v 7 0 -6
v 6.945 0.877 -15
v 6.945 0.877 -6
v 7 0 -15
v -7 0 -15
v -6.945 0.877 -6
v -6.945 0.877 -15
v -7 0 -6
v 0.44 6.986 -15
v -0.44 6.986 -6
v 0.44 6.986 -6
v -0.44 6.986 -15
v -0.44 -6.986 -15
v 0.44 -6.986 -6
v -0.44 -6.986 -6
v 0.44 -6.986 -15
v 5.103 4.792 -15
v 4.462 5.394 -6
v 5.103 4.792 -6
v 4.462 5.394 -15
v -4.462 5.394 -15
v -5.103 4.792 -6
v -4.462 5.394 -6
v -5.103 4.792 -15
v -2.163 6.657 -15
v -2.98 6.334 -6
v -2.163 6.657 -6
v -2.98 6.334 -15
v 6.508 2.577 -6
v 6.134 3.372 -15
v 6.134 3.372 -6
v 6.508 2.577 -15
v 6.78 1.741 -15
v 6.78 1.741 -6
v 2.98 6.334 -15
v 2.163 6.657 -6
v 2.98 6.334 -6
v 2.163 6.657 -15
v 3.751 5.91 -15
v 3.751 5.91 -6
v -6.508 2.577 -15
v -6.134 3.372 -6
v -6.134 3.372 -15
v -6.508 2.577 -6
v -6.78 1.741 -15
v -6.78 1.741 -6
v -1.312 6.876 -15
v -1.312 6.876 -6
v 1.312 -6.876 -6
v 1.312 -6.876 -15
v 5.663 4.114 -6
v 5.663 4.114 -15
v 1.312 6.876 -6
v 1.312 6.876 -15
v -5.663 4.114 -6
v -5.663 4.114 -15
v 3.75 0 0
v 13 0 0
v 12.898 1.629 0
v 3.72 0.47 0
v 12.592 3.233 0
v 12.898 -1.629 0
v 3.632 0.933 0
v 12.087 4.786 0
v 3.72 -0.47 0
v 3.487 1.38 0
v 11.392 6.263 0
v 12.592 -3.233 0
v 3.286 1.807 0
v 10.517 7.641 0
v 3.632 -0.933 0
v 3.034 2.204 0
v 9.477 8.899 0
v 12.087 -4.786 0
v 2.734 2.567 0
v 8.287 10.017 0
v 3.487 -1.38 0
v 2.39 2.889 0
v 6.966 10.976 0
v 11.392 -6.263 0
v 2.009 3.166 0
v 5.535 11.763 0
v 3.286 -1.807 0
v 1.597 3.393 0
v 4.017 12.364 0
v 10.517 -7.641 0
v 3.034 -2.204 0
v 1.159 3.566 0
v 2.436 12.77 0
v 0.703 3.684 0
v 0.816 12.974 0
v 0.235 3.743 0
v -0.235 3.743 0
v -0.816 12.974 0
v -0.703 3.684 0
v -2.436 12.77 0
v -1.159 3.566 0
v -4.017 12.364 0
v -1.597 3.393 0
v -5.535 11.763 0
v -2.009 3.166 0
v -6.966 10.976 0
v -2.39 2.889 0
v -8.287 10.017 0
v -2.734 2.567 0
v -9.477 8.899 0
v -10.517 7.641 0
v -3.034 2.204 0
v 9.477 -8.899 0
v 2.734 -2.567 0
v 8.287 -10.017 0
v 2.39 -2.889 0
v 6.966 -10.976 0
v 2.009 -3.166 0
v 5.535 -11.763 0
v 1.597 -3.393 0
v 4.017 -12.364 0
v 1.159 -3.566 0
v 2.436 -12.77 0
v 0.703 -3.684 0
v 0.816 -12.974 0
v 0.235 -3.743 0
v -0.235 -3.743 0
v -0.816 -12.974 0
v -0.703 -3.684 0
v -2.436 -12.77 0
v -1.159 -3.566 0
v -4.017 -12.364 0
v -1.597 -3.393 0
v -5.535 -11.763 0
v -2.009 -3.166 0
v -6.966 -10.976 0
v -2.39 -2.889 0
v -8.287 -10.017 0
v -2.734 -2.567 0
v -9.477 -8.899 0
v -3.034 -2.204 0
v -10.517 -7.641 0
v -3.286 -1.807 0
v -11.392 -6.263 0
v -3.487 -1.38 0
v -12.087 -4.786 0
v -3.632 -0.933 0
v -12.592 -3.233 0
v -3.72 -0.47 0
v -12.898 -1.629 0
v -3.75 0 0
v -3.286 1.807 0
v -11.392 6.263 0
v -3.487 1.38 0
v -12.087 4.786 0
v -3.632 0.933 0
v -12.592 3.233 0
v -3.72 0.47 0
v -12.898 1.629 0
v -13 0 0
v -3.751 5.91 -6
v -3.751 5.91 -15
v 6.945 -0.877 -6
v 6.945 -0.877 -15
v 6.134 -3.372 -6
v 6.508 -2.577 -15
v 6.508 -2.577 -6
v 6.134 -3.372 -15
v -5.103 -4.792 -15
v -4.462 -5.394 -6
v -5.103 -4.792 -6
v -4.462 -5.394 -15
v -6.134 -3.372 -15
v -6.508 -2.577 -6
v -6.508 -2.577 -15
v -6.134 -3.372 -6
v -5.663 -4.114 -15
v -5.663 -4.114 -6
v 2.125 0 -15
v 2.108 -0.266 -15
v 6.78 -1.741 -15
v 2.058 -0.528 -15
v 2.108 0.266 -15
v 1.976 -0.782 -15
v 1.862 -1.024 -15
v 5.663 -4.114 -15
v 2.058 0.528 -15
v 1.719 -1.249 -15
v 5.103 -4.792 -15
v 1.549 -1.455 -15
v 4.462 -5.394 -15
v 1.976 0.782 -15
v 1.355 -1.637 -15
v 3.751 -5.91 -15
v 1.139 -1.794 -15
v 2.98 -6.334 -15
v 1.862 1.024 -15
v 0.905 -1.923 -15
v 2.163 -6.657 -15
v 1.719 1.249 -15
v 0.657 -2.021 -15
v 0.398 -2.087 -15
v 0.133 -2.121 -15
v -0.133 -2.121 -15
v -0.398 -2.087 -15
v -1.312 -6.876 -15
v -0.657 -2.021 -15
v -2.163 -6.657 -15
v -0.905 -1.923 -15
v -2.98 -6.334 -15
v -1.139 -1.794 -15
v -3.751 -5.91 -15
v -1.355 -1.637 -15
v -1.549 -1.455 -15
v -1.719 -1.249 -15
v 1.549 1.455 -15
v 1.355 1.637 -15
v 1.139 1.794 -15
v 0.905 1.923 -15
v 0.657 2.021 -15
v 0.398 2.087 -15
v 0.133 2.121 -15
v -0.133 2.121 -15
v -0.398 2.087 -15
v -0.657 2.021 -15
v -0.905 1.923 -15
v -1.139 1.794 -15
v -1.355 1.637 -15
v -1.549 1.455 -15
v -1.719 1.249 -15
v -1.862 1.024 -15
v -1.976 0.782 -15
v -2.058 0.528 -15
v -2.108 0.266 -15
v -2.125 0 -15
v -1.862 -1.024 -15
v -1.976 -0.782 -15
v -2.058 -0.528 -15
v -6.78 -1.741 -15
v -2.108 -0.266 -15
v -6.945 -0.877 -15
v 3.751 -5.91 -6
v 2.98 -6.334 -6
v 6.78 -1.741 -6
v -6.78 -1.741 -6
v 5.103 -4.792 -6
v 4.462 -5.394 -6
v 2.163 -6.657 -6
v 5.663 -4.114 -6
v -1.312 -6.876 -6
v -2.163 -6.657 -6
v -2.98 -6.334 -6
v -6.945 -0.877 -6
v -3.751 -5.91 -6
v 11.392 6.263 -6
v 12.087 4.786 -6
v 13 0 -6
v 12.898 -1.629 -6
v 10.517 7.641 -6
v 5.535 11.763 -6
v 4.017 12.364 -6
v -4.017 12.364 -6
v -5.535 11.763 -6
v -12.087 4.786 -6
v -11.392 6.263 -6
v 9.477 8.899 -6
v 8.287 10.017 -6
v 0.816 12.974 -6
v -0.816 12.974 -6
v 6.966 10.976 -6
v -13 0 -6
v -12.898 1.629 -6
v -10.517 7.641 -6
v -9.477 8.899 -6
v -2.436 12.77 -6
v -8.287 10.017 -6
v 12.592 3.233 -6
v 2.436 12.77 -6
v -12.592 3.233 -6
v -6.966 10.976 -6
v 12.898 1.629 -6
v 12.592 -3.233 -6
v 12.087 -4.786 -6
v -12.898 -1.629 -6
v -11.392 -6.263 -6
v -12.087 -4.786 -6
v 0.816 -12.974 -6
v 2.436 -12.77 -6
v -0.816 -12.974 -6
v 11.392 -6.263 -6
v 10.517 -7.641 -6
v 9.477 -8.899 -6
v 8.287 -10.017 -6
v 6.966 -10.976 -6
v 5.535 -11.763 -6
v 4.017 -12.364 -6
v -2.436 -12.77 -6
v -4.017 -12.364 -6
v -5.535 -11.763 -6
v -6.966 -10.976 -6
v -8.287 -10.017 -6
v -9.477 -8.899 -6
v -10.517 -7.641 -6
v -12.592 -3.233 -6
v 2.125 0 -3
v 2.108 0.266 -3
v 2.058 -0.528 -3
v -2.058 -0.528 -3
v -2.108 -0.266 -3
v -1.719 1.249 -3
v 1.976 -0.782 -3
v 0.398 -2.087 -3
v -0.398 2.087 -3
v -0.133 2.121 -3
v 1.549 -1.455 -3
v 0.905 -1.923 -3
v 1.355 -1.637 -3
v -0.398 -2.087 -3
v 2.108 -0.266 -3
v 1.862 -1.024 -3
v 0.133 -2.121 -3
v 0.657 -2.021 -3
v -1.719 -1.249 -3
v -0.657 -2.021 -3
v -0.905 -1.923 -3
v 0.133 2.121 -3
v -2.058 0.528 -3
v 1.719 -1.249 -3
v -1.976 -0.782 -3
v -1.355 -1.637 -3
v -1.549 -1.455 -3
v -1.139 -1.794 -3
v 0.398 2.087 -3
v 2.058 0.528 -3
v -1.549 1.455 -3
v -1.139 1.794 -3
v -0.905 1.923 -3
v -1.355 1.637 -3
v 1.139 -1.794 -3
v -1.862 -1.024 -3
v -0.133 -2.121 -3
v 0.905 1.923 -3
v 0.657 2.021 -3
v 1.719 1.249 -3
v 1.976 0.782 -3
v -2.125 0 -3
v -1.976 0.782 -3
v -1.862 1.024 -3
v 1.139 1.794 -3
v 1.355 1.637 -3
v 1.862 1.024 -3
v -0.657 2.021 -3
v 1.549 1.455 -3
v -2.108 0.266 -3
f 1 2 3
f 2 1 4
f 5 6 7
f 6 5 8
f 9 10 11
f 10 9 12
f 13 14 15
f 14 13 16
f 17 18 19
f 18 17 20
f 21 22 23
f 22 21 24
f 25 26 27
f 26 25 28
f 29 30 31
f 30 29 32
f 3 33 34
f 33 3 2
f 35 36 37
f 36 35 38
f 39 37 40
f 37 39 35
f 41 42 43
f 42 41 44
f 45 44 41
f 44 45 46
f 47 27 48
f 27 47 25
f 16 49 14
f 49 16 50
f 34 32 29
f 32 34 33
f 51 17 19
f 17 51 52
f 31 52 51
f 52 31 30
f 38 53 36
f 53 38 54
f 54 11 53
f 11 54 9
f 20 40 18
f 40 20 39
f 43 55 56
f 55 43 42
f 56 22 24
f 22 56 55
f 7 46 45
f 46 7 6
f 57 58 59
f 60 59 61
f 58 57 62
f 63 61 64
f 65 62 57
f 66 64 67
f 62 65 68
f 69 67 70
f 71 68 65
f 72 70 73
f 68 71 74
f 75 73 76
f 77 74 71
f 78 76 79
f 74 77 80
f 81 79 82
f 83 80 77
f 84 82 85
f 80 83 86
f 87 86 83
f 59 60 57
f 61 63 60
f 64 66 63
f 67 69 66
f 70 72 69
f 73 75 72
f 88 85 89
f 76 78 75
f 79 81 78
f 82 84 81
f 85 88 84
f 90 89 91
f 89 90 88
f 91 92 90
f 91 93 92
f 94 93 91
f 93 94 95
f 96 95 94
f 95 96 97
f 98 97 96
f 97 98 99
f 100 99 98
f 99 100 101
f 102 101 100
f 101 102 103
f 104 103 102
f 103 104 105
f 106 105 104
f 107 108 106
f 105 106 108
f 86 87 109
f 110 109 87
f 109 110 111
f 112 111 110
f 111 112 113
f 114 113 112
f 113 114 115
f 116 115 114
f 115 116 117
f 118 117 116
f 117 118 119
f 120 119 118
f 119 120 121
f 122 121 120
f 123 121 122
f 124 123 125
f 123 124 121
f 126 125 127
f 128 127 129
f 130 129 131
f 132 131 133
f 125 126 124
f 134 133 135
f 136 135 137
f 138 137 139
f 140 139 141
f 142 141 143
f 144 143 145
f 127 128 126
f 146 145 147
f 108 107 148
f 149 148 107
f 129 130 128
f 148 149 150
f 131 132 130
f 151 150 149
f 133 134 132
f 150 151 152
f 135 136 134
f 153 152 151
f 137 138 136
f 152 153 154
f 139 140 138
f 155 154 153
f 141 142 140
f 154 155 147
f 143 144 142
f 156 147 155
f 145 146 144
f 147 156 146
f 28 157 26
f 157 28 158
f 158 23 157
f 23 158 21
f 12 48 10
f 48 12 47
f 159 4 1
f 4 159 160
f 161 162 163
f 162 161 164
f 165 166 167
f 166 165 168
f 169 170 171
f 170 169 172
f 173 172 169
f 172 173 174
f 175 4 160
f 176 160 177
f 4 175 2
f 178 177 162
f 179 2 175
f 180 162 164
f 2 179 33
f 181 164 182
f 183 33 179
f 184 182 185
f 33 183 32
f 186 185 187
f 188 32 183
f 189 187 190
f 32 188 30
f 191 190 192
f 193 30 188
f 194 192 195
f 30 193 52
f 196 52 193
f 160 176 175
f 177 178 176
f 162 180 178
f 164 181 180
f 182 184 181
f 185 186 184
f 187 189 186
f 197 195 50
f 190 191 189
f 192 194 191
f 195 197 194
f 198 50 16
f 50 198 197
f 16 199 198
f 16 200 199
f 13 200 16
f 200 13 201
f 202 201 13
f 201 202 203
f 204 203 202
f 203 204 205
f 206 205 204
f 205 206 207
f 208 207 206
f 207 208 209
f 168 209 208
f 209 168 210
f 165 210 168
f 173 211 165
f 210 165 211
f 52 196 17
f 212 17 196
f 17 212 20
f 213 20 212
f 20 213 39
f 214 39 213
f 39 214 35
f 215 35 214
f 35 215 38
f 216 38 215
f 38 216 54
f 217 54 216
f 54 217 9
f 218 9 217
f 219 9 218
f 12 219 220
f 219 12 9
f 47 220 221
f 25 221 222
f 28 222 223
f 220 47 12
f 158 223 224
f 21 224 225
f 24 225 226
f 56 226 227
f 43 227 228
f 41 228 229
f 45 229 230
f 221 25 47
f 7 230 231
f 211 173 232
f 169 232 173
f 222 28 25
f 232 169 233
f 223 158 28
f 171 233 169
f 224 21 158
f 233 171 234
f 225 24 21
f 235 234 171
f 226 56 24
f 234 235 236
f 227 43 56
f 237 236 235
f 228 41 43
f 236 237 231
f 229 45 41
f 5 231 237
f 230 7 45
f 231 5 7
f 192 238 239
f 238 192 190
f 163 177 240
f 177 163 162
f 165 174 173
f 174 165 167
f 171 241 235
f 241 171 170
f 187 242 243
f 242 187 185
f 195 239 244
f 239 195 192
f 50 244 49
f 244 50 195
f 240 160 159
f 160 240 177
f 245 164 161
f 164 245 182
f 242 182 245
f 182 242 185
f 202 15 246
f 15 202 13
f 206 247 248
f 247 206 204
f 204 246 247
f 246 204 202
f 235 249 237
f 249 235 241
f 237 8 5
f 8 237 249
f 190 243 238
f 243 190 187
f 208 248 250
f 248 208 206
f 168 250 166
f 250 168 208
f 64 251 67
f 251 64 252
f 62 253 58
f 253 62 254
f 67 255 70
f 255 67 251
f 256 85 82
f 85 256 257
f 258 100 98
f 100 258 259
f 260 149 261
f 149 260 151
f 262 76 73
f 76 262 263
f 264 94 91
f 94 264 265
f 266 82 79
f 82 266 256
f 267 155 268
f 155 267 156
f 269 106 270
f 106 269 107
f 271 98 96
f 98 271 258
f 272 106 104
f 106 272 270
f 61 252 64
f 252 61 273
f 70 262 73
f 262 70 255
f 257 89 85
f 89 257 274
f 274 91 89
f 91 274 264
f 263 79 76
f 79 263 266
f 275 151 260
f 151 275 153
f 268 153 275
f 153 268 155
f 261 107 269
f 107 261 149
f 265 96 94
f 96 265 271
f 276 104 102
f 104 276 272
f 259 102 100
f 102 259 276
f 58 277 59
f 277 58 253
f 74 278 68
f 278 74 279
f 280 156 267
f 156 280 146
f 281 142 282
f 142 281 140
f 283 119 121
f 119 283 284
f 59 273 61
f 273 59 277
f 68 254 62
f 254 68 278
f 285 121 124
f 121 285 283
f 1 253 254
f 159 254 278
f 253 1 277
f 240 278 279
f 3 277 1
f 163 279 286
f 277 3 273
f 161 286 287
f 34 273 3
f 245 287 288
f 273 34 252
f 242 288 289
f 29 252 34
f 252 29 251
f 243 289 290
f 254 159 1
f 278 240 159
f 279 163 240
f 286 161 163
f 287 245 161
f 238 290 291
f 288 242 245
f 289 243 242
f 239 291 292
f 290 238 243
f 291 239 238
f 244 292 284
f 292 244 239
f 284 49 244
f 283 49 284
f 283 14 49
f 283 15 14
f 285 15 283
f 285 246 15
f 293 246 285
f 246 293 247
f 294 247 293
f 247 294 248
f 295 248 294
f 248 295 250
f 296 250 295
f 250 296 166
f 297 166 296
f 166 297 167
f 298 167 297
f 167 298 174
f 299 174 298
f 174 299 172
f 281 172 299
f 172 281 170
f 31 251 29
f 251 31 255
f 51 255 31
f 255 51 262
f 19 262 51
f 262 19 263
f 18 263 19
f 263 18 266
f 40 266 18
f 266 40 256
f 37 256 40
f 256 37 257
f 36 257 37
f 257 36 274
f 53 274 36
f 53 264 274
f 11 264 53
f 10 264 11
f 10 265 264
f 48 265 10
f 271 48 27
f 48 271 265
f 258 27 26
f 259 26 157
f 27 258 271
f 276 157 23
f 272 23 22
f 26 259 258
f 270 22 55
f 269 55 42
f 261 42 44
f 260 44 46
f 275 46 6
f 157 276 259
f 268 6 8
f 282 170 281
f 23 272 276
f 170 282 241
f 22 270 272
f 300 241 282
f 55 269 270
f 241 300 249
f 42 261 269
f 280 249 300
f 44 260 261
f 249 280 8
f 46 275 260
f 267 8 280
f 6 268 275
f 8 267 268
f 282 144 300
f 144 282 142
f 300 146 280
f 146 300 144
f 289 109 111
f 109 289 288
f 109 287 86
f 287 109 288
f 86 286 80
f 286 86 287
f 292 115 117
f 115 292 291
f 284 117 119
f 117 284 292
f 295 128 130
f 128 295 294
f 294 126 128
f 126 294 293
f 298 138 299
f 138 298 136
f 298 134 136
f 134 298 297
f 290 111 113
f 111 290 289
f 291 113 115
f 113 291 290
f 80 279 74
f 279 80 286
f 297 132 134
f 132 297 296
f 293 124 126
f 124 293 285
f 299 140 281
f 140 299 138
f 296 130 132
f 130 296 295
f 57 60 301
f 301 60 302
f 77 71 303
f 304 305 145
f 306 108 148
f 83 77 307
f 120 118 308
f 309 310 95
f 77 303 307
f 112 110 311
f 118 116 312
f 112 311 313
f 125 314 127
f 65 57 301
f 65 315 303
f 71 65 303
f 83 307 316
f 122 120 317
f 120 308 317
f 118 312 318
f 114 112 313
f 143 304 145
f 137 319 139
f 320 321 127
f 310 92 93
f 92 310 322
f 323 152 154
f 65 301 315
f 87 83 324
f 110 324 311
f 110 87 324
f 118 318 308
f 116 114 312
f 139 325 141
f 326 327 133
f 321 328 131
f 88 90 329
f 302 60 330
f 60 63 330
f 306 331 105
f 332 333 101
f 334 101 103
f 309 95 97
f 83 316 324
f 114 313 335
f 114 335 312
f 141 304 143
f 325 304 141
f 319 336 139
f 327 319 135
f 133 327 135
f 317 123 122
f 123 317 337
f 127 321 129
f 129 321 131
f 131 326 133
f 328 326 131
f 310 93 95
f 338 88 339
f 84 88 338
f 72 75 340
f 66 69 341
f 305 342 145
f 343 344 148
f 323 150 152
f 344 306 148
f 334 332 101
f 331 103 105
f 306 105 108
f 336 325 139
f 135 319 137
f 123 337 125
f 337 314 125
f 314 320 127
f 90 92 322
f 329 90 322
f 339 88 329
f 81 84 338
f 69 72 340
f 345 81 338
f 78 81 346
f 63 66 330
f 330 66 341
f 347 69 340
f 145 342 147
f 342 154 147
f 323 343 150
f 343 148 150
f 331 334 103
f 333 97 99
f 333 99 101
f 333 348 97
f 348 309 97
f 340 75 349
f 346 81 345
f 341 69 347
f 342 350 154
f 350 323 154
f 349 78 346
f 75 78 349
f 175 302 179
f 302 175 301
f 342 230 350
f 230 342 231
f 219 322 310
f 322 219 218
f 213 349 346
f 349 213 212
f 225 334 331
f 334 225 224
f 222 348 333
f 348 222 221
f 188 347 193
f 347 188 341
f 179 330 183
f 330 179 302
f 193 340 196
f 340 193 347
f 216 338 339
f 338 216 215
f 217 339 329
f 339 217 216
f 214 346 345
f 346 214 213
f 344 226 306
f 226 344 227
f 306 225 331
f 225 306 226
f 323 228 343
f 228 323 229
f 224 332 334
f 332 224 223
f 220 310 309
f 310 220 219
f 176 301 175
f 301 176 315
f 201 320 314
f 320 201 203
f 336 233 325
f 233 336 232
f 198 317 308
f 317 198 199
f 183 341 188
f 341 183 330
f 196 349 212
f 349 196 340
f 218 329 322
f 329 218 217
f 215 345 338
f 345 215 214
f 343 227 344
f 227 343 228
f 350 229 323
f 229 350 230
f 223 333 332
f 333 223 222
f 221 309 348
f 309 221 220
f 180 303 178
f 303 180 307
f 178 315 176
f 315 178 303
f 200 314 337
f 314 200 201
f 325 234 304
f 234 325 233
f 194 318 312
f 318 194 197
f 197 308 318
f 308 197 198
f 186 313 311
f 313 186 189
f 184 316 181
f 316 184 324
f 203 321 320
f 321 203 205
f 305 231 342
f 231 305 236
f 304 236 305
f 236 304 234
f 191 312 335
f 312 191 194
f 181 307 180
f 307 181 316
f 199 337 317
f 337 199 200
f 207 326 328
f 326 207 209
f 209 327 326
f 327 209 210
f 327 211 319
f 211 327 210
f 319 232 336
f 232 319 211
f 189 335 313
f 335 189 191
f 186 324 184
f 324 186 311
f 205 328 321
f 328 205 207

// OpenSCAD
$fn = 50;


difference() {
	union() {
		translate(v = [0, 0, -15.0000000000]) {
			cylinder(h = 15, r = 7.0000000000);
		}
		translate(v = [0, 0, -6.0000000000]) {
			cylinder(h = 6, r = 13.0000000000);
		}
	}
	union() {
		translate(v = [0, 0, 0]) {
			rotate(a = [0, 0, 0]) {
				difference() {
					union() {
						#translate(v = [0, 0, -15.0000000000]) {
							cylinder(h = 15, r = 2.0000000000);
						}
						#translate(v = [0, 0, -3]) {
							cylinder(h = 3, r = 7.0000000000, r1 = 2.1250000000, r2 = 3.7500000000);
						}
						#translate(v = [0, 0, -15.0000000000]) {
							cylinder(h = 15, r = 2.1250000000);
						}
						#translate(v = [0, 0, -15.0000000000]) {
							cylinder(h = 15, r = 2.0000000000);
						}
					}
					union();
				}
			}
		}
	}
}
